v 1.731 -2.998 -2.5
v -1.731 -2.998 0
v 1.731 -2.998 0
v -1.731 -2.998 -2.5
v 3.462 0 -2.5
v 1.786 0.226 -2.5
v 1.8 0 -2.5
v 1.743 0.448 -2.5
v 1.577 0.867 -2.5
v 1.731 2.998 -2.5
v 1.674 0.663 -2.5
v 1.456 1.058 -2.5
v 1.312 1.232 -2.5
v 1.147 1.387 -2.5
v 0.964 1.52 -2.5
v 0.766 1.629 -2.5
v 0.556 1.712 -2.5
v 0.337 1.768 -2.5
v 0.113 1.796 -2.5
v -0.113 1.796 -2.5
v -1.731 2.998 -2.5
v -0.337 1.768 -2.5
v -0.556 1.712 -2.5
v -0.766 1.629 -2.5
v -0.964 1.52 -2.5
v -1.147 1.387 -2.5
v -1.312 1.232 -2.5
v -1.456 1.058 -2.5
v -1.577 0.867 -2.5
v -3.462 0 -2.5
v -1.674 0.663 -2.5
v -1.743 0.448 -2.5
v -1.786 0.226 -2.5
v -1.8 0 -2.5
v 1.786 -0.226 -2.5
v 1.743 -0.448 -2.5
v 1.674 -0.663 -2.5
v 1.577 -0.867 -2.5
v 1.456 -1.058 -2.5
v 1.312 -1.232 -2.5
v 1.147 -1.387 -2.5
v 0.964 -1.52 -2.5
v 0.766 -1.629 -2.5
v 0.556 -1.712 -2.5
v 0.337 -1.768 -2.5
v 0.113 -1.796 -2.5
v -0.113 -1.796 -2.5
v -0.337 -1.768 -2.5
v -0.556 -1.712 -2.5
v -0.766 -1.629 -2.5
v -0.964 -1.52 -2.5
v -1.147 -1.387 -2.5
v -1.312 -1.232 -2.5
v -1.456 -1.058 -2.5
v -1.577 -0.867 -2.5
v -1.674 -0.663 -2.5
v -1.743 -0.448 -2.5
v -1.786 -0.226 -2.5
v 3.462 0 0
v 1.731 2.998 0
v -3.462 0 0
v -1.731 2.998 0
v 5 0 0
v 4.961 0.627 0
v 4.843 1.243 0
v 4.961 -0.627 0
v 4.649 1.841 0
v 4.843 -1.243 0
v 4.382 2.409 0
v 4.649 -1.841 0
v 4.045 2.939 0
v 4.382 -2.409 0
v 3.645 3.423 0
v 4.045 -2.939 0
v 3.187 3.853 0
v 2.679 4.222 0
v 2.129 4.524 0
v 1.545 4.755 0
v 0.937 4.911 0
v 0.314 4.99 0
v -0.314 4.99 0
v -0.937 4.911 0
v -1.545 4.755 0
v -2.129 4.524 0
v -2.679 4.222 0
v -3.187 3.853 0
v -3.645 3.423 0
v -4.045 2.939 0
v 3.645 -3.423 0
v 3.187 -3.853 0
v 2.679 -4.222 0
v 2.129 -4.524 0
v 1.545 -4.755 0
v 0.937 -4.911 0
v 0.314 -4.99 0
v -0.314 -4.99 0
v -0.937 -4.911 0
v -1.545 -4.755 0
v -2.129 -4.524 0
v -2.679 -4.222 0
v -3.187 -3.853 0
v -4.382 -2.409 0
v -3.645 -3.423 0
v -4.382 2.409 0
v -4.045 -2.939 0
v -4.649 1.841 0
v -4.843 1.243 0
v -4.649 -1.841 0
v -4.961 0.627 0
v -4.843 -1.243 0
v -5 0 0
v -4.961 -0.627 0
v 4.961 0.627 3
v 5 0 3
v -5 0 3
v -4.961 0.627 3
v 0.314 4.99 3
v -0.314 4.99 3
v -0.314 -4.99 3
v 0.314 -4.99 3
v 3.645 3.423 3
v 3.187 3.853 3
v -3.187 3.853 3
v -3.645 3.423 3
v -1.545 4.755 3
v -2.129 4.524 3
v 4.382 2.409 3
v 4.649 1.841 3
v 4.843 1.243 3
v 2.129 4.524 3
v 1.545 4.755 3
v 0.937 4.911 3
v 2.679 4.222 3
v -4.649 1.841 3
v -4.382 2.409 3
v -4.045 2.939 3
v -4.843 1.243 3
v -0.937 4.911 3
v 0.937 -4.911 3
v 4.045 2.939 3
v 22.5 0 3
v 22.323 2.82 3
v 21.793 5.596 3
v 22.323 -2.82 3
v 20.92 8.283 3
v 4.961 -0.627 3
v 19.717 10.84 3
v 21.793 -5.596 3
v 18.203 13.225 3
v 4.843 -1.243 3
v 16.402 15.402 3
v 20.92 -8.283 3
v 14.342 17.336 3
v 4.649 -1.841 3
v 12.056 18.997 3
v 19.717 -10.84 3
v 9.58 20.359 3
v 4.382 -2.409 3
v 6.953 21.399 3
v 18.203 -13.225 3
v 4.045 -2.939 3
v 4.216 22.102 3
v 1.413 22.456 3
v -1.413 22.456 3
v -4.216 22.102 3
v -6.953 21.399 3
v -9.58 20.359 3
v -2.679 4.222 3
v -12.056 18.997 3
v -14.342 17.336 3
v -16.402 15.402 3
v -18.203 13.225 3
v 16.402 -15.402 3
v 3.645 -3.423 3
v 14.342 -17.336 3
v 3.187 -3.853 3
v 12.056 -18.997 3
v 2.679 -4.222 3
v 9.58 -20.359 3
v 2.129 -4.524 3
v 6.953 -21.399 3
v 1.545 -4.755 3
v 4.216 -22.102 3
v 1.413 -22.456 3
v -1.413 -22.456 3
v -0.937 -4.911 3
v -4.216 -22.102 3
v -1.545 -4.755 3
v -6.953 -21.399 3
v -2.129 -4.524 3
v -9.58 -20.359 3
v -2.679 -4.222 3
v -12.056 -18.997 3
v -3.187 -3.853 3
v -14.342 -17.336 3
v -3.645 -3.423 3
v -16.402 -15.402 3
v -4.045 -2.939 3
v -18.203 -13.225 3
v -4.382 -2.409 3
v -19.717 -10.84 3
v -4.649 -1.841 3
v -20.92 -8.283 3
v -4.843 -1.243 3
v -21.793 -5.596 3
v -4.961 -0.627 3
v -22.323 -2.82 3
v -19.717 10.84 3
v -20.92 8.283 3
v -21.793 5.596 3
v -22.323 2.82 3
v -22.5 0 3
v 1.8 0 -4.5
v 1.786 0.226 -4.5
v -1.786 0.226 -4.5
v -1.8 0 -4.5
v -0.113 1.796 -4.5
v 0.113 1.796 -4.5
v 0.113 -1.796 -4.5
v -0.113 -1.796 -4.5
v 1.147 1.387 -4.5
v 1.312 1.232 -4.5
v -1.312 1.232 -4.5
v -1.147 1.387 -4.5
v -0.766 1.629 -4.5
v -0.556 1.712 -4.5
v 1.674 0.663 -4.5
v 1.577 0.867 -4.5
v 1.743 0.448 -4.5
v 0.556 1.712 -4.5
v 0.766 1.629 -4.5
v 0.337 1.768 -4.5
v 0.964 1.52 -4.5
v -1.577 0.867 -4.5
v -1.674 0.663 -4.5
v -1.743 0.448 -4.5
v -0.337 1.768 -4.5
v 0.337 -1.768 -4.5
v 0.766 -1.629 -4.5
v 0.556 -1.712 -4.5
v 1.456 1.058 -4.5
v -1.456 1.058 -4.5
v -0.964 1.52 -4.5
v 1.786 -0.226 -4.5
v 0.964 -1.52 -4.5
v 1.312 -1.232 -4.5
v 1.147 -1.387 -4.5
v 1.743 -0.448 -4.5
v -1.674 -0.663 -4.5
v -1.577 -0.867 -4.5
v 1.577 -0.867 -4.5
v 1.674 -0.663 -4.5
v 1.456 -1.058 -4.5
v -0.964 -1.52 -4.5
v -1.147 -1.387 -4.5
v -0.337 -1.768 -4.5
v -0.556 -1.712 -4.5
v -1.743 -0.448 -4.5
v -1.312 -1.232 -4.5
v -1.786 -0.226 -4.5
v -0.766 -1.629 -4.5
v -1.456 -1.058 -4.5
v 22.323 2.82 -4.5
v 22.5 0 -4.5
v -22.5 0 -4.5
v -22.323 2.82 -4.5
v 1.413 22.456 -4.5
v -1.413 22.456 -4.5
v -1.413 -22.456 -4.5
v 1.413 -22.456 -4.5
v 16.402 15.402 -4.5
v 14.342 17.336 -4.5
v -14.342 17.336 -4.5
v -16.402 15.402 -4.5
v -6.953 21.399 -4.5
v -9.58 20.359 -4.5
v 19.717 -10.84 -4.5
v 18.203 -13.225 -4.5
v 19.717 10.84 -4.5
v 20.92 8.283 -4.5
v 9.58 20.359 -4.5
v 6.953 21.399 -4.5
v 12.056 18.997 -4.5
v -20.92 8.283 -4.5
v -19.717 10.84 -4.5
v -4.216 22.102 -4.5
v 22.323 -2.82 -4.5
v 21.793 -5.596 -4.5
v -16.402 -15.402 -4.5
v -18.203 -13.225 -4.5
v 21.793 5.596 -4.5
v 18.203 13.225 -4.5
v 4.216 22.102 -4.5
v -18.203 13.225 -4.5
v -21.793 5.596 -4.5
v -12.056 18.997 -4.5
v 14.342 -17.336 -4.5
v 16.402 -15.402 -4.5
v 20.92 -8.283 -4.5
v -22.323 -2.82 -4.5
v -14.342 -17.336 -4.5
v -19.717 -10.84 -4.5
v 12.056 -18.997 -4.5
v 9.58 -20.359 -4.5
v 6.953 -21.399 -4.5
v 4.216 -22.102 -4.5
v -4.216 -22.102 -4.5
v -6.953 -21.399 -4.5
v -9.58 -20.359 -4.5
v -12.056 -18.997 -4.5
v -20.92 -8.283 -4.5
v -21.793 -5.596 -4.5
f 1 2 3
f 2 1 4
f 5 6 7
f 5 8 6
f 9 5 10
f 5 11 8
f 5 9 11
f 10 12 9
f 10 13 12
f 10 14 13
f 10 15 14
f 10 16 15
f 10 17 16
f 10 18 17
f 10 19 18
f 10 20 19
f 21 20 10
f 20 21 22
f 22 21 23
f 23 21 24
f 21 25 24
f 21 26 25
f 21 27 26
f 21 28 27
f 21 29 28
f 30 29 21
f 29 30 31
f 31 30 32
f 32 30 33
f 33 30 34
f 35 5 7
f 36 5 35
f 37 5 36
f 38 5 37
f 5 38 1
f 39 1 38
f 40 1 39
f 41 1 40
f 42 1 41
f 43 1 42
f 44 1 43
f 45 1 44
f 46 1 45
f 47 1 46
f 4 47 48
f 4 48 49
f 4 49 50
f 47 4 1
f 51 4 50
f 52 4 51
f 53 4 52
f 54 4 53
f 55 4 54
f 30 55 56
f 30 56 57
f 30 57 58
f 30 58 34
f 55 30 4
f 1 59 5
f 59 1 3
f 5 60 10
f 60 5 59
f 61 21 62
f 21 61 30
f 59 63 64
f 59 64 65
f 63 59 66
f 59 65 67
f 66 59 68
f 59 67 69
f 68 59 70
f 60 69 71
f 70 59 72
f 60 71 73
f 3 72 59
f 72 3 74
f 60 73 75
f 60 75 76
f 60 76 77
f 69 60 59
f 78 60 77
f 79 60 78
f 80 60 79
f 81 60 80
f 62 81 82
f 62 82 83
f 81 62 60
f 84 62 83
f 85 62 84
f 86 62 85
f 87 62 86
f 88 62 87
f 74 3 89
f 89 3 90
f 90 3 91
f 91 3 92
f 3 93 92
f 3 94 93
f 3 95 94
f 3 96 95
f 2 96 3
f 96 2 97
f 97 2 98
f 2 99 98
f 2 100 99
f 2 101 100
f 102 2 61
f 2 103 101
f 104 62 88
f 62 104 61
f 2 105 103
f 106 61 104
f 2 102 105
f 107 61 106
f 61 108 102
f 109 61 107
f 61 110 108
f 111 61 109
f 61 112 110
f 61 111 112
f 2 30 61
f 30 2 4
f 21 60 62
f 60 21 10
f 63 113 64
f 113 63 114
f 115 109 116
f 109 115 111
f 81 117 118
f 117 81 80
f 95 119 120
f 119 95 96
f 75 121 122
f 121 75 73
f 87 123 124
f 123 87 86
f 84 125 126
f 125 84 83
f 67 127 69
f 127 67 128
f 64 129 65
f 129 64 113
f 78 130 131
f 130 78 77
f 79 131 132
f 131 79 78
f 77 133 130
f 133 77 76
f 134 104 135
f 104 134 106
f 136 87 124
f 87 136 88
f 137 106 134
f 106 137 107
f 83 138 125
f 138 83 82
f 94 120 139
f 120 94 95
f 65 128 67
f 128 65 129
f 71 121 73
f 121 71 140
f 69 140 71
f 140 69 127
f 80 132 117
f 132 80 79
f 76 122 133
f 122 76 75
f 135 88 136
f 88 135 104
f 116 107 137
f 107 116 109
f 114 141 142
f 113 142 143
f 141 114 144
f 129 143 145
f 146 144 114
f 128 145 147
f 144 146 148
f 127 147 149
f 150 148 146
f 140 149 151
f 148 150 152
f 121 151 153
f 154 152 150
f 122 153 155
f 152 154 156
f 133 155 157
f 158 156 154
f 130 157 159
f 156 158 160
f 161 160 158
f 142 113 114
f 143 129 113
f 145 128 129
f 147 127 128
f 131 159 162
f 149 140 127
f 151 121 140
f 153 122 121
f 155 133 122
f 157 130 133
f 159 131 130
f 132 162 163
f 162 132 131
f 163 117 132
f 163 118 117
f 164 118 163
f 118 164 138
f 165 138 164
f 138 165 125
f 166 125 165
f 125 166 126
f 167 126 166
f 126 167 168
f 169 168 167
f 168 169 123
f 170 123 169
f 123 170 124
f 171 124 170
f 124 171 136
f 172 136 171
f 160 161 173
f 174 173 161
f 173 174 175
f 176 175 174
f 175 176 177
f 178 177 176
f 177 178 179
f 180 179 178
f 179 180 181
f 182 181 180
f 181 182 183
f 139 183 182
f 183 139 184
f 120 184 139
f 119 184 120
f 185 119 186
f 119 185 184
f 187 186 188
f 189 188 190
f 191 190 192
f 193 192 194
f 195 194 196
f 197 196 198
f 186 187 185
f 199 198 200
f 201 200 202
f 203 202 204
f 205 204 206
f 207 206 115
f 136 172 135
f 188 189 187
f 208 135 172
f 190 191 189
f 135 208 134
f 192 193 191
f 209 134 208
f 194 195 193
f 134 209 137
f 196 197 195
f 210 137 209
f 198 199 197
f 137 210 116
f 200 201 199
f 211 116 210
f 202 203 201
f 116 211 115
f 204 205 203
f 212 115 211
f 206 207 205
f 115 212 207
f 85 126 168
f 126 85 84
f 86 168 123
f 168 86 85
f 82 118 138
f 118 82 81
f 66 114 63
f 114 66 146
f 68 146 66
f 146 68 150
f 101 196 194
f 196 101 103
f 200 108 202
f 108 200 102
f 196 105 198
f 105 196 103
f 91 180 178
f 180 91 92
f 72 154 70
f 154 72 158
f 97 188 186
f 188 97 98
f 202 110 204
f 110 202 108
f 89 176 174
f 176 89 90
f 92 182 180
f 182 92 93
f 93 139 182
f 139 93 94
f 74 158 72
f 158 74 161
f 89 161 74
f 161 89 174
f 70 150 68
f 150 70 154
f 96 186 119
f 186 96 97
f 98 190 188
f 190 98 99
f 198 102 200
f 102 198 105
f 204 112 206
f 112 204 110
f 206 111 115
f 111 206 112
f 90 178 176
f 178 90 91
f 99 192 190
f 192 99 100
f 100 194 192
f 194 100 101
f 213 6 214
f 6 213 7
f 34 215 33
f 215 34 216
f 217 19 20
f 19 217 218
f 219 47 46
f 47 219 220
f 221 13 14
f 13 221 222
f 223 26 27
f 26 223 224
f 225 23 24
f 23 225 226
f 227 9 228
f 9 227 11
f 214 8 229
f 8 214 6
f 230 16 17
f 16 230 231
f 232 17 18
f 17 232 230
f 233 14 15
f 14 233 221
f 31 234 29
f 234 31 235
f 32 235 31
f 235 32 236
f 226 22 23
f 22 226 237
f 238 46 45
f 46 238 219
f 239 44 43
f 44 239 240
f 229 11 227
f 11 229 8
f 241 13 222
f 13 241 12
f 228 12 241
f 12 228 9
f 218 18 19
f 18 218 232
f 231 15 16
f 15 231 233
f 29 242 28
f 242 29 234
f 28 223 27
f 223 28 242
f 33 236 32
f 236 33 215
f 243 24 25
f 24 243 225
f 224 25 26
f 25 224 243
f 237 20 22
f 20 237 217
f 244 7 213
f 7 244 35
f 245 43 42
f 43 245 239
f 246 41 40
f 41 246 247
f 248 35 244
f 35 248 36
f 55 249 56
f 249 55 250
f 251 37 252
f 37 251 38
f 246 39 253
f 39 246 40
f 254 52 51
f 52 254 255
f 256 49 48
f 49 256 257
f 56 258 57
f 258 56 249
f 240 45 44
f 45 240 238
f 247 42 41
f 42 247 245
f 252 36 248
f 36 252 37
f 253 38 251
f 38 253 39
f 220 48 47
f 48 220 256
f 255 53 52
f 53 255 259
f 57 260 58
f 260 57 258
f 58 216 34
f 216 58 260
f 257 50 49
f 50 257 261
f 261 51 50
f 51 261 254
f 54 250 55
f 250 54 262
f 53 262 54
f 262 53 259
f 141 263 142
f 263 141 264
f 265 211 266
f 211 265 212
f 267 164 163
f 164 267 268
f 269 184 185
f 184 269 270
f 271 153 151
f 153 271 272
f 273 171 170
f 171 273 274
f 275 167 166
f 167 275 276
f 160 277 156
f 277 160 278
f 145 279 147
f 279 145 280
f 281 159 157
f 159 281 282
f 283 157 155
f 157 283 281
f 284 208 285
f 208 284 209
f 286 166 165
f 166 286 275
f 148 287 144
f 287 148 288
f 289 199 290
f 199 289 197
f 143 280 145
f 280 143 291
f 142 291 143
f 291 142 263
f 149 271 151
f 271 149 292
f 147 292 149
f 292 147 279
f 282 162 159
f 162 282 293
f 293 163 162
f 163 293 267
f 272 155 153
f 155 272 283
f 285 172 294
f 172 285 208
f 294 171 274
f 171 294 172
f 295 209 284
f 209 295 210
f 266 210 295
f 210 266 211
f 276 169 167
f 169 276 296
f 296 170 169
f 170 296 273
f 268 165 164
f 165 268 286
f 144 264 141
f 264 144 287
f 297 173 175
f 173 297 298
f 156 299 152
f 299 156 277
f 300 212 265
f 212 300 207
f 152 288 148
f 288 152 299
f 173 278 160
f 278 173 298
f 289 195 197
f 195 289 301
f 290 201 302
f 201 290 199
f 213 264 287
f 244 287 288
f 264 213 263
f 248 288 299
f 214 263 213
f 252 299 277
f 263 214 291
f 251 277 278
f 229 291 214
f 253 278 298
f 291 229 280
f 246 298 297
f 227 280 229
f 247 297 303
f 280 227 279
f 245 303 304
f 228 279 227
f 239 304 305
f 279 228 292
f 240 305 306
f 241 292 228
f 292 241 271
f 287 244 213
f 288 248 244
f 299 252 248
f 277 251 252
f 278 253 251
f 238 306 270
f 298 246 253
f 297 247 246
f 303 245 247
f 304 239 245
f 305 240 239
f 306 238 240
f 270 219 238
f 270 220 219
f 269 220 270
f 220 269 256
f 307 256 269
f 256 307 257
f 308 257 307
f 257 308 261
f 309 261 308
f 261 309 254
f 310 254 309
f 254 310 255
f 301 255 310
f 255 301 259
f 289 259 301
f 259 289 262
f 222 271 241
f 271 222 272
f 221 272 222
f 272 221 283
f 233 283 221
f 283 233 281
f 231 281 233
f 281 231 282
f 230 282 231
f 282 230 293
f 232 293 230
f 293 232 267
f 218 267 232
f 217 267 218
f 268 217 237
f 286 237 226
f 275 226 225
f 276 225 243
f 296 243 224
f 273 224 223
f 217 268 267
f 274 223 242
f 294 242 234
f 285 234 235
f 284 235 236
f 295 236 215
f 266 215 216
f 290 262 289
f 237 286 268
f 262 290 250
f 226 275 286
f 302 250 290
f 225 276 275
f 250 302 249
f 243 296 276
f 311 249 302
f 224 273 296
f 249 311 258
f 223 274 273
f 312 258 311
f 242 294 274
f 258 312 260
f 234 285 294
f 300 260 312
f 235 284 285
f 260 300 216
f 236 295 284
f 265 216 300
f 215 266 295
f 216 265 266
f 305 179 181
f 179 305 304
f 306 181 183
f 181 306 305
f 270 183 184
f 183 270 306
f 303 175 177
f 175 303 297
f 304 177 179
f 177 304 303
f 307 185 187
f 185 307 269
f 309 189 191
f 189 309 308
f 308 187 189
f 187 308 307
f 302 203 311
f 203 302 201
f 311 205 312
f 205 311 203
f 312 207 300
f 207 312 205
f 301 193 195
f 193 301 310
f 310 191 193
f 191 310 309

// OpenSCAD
$fn = 50;

difference() {
	union() {
		translate(v = [0, 0, -4.5]) {
			cylinder(h = 7.5, r = 22.5);
		}
	}
	union() {
		translate(v = [0, 0, 0]) {
			rotate(a = [0, 0, 0]) {
				difference() {
					union() {
						translate(v = [0, 0, -2.5]) {
							linear_extrude(height = 2.5) {
								polygon(points = [[3.4619999999999997, 0.0], [1.7310000000000003, 2.9981799479017264], [-1.7309999999999992, 2.9981799479017264], [-3.4619999999999997, 4.2397272186481365e-16], [-1.7310000000000014, -2.998179947901726], [1.7309999999999977, -2.9981799479017277]]);
							}
						}
					}
					union();
				}
			}
		}
		#cylinder(h = 3, r = 5.0);
		#translate(v = [0, 0, -100.0]) {
			cylinder(h = 200, r = 1.8);
		}
	}
}
